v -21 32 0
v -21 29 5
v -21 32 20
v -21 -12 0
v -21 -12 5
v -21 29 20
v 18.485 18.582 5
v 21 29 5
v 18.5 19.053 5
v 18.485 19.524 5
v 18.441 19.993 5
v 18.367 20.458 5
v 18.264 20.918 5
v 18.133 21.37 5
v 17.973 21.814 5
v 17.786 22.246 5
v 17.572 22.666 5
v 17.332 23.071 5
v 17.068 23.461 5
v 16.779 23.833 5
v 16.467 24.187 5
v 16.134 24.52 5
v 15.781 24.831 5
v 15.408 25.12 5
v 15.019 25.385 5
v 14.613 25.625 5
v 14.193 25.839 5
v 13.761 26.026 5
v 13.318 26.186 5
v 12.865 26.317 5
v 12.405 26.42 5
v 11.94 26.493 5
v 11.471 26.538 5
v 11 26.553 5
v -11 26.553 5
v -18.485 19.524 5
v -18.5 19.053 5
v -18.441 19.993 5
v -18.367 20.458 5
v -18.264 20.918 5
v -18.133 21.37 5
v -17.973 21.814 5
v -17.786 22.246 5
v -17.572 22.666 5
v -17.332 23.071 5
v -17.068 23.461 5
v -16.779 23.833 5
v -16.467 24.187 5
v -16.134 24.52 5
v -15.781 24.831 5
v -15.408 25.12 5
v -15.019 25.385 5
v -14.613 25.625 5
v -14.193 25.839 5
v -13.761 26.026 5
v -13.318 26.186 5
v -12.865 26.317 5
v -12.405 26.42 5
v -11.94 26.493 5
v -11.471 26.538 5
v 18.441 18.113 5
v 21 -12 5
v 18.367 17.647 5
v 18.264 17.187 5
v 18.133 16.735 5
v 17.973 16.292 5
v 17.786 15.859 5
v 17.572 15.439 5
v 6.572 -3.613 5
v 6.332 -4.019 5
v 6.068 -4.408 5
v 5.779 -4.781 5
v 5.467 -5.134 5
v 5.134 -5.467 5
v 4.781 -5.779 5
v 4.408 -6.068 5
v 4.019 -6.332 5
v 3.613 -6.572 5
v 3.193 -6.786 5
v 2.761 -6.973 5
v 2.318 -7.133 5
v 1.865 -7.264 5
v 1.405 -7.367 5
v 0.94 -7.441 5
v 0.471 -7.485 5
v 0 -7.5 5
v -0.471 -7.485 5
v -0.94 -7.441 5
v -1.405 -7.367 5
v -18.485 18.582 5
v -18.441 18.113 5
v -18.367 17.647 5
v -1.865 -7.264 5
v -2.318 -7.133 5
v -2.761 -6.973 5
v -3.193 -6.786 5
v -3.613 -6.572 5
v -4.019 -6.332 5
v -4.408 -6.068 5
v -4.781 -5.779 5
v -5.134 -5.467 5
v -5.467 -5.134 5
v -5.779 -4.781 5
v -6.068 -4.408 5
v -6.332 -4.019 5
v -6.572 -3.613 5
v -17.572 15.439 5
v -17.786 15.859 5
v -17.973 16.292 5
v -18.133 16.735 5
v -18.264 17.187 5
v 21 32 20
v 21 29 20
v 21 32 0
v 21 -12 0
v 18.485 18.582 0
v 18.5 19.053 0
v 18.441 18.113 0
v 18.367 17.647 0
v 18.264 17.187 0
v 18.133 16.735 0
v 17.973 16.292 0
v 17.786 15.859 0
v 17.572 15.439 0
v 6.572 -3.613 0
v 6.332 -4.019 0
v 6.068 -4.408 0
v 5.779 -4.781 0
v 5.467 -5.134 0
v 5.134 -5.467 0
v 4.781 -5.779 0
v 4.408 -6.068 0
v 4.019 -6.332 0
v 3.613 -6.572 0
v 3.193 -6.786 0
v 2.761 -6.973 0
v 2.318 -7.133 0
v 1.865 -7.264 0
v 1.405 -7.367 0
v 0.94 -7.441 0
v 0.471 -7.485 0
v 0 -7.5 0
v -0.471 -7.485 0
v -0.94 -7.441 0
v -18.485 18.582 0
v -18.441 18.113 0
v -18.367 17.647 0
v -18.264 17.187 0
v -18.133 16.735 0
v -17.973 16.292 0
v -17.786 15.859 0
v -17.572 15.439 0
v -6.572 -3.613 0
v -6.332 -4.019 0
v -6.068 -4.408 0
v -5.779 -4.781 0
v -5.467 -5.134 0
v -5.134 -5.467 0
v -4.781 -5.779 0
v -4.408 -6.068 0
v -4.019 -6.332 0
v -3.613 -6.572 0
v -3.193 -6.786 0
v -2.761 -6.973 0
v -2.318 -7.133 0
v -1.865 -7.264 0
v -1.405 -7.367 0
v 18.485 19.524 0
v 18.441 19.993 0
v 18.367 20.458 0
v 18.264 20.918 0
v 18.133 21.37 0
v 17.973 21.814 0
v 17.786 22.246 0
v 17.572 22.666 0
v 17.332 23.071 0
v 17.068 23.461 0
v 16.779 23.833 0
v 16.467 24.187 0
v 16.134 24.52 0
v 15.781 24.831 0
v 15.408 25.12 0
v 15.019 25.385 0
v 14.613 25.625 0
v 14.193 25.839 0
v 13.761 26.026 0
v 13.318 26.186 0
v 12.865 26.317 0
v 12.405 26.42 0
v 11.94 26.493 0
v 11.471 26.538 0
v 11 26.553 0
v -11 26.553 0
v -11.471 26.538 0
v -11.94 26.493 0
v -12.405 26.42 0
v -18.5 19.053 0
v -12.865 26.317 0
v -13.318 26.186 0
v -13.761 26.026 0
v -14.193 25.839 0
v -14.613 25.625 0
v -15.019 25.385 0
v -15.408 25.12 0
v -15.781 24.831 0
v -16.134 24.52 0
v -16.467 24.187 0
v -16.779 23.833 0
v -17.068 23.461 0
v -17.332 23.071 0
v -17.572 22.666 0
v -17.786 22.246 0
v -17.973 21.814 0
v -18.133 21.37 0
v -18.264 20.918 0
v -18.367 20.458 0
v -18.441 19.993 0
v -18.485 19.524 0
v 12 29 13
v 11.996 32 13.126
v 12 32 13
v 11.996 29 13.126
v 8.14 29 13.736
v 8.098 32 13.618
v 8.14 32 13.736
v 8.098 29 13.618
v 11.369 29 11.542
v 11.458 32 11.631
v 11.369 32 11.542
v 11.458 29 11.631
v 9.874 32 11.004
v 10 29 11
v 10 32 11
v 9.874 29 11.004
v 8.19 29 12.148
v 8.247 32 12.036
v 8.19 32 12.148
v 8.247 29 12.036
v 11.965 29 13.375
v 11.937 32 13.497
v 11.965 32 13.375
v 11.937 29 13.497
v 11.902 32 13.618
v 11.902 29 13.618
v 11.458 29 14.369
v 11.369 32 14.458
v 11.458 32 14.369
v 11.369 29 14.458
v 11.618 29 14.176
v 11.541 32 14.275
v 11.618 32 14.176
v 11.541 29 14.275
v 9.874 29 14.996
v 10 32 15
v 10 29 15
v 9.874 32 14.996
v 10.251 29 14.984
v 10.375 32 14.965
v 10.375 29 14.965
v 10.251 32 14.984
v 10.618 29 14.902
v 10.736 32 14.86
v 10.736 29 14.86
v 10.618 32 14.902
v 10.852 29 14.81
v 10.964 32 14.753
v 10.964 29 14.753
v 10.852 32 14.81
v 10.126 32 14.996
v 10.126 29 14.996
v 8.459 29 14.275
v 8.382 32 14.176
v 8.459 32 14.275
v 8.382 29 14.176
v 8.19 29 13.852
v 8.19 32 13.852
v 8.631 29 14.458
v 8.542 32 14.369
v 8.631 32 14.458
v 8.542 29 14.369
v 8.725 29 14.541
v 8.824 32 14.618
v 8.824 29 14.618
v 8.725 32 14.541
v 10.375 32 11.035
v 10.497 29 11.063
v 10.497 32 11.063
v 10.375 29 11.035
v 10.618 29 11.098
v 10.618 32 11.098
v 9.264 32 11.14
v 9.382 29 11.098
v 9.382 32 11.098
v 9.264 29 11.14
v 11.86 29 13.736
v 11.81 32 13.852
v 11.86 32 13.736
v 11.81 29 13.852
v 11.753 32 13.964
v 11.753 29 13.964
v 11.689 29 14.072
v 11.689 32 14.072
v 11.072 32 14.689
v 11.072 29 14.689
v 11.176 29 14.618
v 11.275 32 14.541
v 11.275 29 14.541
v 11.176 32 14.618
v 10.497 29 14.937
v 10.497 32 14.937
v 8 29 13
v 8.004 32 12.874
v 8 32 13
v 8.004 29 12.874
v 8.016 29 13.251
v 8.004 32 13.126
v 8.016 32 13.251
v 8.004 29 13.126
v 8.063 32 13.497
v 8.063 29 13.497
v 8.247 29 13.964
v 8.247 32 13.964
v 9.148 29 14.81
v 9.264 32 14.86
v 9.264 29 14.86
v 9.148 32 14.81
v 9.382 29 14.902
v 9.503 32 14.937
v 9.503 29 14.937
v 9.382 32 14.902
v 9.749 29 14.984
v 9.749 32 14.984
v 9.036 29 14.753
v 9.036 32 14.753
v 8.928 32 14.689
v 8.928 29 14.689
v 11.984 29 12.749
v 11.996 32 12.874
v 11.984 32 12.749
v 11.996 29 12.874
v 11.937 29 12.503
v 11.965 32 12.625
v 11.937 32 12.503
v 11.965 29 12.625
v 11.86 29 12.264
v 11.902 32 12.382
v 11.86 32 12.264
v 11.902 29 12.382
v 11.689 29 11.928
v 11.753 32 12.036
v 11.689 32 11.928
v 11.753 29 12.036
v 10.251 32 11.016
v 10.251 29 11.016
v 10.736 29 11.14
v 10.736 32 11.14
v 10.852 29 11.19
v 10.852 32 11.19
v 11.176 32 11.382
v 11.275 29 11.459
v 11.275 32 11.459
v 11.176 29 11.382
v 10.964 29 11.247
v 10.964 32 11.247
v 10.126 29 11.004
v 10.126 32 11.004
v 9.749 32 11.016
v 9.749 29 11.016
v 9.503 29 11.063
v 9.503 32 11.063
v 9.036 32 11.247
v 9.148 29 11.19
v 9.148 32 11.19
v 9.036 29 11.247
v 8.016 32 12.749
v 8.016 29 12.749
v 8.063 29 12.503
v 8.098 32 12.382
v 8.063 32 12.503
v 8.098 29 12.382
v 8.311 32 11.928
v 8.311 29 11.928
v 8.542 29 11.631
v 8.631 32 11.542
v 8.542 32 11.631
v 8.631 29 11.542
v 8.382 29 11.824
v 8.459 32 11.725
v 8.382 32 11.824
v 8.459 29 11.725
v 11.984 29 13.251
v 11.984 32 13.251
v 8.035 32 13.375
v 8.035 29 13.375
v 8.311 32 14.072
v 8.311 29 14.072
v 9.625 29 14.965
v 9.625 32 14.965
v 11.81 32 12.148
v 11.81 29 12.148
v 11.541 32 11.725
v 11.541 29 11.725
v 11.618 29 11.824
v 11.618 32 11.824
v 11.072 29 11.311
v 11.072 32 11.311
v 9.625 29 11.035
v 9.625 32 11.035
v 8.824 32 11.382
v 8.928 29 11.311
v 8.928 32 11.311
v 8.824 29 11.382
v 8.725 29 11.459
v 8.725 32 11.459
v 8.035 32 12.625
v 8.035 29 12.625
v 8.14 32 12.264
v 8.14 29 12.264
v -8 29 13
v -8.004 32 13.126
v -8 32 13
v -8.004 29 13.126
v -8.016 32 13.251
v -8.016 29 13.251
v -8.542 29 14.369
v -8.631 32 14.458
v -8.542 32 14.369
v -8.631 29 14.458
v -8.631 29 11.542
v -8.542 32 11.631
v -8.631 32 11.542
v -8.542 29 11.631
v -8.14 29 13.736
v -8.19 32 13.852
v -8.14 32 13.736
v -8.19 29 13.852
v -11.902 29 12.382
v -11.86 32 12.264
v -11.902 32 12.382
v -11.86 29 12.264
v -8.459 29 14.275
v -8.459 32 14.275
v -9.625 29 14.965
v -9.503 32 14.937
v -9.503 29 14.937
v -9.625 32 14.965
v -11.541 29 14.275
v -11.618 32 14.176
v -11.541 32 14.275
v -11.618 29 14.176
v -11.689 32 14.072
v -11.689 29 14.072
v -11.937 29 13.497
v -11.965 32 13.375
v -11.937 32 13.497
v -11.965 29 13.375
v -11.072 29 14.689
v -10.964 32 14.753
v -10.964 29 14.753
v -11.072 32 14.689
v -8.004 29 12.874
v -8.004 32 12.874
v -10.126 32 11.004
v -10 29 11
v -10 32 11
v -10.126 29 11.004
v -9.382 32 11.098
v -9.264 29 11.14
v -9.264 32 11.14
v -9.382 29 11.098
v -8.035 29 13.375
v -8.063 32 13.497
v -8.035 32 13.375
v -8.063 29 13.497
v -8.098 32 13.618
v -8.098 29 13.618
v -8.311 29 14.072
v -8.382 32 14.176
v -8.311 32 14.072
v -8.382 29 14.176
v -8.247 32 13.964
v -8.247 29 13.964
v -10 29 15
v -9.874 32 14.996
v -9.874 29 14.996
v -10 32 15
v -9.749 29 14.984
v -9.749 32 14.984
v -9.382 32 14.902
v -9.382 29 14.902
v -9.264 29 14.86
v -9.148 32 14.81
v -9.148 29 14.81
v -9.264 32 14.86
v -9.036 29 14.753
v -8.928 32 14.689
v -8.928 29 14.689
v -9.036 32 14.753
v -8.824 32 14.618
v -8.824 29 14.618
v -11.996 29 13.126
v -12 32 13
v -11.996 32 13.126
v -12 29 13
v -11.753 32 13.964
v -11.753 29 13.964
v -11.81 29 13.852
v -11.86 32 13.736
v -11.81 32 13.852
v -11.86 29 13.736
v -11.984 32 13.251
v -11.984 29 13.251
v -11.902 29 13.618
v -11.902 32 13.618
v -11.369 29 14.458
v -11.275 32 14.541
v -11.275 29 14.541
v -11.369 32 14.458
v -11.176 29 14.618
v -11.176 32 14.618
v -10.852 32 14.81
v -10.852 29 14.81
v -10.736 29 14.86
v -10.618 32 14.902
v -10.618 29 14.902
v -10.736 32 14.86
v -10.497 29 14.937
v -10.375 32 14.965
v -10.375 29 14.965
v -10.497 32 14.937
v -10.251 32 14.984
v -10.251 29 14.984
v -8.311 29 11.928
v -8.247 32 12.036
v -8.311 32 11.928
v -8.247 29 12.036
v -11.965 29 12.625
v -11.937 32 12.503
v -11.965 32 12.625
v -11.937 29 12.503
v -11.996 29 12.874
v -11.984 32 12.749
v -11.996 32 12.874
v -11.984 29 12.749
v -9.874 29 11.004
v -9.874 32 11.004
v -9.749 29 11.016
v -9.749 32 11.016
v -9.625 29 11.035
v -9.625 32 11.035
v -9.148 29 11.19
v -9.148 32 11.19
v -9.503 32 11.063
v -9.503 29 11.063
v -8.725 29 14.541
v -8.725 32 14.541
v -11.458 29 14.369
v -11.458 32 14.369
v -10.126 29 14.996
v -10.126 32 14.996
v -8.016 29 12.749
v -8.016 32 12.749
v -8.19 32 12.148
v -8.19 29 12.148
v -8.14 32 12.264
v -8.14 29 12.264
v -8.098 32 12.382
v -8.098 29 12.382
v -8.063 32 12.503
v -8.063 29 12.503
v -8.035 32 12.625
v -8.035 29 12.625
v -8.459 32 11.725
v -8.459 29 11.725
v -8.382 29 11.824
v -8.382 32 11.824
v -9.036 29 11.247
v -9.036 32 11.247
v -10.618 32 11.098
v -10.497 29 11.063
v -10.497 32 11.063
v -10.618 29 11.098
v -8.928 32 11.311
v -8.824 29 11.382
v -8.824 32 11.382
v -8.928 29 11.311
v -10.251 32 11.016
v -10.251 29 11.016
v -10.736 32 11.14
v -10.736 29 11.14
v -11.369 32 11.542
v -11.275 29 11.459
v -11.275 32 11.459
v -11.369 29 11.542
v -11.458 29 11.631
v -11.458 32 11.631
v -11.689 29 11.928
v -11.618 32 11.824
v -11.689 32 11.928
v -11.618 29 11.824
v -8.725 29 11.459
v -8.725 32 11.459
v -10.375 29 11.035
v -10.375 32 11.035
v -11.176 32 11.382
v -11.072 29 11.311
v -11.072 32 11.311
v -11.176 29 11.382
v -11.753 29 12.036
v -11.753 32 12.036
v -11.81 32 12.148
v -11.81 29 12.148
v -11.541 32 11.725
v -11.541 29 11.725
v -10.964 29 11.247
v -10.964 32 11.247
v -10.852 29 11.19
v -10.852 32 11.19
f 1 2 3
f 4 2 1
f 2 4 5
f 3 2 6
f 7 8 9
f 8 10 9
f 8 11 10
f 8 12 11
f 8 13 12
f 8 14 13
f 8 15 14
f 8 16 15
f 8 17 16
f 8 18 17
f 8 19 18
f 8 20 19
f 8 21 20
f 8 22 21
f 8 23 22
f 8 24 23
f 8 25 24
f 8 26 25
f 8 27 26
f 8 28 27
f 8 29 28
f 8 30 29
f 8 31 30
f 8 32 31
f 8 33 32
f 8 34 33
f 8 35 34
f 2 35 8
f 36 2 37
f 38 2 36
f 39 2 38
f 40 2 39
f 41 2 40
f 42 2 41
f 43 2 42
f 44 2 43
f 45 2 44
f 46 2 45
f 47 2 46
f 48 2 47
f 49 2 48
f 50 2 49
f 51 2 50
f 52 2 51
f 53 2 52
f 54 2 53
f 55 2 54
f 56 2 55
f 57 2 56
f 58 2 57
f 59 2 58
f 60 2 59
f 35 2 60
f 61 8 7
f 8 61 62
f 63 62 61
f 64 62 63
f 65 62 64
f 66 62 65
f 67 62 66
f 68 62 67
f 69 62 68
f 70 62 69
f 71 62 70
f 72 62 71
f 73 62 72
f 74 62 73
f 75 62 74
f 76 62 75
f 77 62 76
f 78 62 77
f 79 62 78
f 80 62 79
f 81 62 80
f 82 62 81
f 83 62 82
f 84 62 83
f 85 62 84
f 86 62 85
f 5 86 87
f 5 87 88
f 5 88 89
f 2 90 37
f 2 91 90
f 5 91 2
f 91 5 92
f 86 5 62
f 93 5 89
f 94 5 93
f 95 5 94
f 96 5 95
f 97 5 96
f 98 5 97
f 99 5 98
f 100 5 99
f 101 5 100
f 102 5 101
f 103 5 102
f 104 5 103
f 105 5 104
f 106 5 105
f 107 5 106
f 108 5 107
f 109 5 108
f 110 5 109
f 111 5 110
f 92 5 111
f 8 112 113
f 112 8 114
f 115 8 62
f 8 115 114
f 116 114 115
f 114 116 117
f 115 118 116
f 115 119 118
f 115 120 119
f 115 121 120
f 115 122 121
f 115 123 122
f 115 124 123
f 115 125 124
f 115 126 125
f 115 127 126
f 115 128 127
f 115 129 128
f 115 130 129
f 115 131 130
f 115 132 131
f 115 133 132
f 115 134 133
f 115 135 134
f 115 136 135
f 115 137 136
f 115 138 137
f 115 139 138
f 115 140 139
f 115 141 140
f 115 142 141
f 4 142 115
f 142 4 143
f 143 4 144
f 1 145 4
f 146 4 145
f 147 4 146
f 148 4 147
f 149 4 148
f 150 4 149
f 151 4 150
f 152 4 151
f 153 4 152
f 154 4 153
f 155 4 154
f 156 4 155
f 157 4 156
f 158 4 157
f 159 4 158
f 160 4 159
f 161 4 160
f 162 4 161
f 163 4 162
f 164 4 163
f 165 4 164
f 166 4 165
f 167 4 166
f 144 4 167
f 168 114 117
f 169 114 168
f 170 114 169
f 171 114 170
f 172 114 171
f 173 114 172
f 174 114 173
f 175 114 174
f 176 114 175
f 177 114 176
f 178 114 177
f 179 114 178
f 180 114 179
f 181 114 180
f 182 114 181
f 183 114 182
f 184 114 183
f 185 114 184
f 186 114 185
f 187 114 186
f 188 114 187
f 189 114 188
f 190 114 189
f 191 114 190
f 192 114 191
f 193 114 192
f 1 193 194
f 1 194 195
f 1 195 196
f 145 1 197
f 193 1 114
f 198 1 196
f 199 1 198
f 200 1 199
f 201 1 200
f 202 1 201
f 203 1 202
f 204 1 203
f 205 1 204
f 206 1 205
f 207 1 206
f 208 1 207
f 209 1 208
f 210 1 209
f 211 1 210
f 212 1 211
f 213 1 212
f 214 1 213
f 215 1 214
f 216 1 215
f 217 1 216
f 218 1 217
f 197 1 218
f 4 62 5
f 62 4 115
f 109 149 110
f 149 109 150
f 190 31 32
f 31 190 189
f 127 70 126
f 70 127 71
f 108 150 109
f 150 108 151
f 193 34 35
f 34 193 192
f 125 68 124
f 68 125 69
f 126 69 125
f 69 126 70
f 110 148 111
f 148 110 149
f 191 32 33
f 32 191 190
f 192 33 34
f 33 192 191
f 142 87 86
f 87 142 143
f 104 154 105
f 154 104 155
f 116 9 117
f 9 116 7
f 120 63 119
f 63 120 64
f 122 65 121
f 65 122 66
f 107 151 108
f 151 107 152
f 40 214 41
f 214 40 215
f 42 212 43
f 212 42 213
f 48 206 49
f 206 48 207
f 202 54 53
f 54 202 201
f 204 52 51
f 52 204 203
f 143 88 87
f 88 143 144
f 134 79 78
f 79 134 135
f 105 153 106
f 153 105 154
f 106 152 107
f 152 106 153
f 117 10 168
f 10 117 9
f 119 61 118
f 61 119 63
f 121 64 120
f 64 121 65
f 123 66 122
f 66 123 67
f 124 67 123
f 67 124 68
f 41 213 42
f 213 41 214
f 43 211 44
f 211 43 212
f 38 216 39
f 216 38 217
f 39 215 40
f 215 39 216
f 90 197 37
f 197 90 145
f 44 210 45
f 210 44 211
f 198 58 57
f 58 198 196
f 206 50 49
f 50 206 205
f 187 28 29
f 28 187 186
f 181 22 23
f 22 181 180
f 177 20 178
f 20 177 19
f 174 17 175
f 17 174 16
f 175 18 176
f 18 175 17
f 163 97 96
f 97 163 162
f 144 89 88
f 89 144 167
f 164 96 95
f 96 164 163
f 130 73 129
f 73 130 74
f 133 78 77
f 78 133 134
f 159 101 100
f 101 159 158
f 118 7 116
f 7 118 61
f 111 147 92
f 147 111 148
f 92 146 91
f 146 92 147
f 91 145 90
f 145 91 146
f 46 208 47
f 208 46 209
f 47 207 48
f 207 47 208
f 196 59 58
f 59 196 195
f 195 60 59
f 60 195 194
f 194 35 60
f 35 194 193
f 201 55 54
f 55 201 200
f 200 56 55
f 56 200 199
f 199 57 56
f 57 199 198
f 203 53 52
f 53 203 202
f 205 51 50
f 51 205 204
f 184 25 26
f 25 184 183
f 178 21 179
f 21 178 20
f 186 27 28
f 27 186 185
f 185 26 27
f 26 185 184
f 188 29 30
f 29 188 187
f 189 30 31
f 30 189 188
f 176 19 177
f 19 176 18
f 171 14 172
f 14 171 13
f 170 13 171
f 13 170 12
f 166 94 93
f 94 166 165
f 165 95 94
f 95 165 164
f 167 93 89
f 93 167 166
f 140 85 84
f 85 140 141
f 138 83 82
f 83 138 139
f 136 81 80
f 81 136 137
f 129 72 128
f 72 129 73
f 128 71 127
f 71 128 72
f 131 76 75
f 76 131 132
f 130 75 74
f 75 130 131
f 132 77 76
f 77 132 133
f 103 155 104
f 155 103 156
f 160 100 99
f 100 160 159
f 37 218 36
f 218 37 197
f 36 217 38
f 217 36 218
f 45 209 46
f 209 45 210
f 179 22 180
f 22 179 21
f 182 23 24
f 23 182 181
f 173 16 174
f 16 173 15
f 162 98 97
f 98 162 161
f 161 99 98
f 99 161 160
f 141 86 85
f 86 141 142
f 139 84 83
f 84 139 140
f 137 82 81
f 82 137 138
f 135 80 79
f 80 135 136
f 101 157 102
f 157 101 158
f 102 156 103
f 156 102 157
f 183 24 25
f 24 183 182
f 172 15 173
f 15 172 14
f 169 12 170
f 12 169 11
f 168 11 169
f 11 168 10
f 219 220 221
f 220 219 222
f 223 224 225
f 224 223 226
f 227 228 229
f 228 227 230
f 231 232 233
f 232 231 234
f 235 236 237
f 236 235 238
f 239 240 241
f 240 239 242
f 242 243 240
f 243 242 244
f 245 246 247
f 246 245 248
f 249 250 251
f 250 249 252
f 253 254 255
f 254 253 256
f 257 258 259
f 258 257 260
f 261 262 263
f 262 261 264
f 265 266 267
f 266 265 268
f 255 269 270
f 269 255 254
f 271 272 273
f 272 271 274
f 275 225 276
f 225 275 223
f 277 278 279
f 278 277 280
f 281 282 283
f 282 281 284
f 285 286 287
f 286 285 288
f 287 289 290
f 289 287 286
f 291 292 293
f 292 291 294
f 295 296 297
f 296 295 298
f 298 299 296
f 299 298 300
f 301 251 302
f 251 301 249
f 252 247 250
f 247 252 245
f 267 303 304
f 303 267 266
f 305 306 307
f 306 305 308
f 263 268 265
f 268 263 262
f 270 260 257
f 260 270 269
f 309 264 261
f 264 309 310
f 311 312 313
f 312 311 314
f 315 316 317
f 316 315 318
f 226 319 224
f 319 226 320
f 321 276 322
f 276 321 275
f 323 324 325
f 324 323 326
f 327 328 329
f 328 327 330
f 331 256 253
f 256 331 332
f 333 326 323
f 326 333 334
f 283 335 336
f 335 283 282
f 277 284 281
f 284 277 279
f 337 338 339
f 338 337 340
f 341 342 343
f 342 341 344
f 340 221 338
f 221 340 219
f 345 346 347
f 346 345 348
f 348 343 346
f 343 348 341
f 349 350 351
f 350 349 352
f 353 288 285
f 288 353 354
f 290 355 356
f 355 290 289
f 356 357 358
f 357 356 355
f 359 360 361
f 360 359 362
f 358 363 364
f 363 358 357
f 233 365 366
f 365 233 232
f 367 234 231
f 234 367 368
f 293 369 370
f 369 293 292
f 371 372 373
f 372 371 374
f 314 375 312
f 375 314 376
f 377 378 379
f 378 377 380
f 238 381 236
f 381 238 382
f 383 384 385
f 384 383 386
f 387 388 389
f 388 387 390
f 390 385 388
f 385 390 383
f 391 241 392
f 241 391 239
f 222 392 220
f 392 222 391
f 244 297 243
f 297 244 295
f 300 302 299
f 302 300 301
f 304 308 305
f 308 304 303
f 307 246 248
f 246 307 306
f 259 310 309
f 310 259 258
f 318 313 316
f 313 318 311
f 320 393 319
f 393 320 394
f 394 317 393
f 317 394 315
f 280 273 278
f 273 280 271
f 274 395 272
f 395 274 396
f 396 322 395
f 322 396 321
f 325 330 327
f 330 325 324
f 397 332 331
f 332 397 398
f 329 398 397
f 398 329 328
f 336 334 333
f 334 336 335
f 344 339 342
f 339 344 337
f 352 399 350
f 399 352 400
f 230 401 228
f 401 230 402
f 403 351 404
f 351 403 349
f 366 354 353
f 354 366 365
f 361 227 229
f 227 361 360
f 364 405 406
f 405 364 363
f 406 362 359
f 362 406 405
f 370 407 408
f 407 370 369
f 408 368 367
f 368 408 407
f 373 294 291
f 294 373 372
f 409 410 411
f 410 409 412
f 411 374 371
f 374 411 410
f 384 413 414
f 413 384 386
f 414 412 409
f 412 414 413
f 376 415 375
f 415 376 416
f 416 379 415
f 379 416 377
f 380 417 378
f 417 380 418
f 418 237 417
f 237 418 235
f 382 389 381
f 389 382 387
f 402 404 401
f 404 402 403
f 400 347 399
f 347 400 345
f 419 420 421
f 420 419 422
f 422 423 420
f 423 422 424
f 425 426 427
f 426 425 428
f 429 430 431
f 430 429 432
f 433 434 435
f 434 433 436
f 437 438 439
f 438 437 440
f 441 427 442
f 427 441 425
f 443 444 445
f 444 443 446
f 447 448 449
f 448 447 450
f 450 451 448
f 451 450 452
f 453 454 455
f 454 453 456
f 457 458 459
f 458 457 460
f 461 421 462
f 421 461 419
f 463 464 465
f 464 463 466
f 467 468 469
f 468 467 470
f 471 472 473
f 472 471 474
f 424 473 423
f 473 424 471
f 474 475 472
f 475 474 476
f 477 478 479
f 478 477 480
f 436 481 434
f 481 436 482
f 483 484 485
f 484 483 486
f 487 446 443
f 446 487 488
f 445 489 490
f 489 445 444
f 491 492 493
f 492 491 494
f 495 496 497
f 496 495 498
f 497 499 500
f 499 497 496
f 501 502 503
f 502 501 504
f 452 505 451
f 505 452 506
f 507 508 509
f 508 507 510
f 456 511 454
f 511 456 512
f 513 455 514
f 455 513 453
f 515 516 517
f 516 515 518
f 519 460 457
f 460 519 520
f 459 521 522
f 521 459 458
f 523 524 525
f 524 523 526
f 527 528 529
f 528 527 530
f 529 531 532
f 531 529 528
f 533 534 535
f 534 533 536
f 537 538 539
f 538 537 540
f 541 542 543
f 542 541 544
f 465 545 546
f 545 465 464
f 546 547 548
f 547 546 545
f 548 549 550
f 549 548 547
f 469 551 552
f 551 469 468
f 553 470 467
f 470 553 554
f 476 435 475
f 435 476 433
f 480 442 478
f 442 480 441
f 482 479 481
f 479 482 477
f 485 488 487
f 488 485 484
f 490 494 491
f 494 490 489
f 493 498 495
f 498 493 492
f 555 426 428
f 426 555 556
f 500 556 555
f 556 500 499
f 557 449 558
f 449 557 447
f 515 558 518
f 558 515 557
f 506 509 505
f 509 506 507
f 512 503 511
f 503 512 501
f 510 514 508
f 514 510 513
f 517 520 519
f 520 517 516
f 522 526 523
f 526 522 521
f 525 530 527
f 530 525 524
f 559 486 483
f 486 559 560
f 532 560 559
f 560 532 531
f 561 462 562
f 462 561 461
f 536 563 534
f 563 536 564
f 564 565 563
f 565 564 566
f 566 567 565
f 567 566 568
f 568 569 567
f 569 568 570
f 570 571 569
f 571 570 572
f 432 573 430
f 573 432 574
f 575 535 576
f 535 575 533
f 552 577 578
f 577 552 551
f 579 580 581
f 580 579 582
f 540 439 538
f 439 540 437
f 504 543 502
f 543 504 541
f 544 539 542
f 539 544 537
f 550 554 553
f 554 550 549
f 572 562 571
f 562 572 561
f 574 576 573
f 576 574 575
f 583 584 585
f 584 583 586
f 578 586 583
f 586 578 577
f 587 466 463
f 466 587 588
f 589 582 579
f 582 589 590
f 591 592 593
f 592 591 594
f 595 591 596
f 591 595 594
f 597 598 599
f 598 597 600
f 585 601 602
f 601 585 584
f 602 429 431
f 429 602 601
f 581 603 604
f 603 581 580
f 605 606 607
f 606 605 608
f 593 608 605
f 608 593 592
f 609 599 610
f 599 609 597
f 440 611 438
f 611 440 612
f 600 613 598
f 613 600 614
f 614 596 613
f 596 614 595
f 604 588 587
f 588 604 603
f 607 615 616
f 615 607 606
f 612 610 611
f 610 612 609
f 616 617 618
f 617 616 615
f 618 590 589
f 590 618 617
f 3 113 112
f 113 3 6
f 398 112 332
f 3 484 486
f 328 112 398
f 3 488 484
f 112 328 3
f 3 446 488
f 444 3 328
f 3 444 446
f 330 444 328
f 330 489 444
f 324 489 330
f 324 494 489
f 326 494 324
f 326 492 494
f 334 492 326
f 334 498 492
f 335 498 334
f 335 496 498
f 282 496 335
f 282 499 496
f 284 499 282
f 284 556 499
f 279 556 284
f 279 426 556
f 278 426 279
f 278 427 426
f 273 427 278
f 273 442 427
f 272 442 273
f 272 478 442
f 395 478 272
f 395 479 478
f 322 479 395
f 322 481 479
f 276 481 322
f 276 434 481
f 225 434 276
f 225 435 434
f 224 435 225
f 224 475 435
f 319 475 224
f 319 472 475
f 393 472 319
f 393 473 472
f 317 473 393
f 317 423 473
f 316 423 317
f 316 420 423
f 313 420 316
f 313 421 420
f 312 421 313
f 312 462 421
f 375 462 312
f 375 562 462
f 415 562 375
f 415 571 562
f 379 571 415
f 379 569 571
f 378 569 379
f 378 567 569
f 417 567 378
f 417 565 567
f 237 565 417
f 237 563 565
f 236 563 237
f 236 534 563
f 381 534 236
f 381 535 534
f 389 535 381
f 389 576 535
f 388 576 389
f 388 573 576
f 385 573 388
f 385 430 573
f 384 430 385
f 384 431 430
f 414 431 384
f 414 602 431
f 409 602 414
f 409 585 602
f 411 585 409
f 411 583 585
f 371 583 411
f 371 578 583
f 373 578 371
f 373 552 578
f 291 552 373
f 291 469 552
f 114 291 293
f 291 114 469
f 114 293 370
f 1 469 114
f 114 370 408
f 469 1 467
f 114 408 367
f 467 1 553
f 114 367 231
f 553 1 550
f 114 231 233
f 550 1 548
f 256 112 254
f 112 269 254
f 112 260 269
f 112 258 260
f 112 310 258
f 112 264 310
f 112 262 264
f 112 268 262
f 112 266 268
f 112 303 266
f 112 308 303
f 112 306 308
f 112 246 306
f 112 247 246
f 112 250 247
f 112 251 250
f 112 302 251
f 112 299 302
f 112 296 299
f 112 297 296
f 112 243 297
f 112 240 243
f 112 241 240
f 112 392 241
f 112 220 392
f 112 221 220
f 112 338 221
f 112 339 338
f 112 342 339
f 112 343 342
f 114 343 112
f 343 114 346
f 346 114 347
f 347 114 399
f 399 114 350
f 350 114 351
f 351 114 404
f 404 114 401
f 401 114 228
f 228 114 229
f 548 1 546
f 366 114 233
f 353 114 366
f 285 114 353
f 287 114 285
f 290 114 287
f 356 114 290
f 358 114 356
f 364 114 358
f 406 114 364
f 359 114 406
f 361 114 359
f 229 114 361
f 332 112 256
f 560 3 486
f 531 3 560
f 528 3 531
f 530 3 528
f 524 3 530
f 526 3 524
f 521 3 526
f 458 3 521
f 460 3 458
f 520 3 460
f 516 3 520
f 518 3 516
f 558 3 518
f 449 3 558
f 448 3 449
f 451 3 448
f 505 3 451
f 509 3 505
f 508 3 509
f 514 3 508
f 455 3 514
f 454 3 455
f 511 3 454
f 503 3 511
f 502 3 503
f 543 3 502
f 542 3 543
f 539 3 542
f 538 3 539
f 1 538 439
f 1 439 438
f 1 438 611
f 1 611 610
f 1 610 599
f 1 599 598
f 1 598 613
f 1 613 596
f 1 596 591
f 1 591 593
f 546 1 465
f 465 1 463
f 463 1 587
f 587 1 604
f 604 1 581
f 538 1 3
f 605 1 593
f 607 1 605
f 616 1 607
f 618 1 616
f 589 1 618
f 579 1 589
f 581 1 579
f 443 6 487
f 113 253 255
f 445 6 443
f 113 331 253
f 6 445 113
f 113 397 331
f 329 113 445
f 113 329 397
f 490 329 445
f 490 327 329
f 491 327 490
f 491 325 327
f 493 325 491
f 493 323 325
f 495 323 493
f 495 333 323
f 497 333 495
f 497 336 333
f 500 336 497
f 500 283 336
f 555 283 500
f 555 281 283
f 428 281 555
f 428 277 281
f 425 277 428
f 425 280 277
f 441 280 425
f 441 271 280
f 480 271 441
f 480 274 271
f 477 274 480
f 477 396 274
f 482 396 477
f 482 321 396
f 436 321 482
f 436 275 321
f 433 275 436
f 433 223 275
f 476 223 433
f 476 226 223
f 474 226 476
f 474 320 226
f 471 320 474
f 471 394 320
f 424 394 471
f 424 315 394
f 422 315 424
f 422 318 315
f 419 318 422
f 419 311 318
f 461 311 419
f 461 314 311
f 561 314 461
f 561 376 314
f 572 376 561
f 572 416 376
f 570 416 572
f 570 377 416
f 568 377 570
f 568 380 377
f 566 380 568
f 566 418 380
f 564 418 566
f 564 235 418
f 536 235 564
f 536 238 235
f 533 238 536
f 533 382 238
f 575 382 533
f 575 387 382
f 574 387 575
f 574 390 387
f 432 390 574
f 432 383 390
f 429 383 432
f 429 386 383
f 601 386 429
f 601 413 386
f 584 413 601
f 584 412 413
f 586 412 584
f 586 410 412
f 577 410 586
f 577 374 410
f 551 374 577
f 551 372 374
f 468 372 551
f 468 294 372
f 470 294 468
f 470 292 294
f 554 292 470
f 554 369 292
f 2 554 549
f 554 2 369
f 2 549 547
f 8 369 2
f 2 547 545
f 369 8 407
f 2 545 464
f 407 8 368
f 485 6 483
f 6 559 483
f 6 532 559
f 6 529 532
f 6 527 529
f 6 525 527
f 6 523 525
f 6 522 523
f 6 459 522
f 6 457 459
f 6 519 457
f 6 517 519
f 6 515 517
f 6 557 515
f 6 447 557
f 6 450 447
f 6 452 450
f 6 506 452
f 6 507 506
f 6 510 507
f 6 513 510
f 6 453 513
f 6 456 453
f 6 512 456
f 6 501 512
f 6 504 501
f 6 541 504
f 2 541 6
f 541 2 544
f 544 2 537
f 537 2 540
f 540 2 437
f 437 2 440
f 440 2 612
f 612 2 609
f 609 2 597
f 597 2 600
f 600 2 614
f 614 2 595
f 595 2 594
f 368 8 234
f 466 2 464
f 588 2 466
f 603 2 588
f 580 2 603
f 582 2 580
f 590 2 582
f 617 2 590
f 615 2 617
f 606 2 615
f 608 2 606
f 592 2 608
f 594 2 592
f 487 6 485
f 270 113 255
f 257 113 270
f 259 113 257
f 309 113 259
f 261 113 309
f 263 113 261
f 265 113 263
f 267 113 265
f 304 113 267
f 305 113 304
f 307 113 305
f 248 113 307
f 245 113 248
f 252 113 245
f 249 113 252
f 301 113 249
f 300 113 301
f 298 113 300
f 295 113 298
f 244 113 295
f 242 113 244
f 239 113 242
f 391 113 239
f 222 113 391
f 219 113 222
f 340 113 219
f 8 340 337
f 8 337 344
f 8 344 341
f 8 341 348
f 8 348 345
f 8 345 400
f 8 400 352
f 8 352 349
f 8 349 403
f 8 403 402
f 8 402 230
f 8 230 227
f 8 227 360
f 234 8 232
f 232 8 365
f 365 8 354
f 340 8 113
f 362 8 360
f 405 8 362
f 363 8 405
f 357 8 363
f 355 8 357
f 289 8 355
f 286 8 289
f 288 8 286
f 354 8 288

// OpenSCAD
$fn=100;
diameter = 15;
altezza = 5;
distanza = 22;

difference(){
    translate([-21,-12,0]){
        cube([42,42,altezza]);
    }
    #hub();

}

module hub(){
    hull(){
        spostamento = sqrt((distanza * distanza ) - (distanza/2 * distanza/2));
        cylinder(altezza,diameter/2,diameter/2);
        translate([distanza/2,spostamento,0]){
            cylinder(altezza,diameter/2,diameter/2);
        }
        translate([-distanza/2,spostamento,0]){
            cylinder(altezza,diameter/2,diameter/2);
        }
    }
}


difference(){
    
 translate([-21,29,0]){
cube([42,3,20]);
 }
 
for ( i = [10,-10]){
    translate([i,35,13]){
        rotate([90,0,0]){
            cylinder(10,2,2);
        }
    }
}
}
